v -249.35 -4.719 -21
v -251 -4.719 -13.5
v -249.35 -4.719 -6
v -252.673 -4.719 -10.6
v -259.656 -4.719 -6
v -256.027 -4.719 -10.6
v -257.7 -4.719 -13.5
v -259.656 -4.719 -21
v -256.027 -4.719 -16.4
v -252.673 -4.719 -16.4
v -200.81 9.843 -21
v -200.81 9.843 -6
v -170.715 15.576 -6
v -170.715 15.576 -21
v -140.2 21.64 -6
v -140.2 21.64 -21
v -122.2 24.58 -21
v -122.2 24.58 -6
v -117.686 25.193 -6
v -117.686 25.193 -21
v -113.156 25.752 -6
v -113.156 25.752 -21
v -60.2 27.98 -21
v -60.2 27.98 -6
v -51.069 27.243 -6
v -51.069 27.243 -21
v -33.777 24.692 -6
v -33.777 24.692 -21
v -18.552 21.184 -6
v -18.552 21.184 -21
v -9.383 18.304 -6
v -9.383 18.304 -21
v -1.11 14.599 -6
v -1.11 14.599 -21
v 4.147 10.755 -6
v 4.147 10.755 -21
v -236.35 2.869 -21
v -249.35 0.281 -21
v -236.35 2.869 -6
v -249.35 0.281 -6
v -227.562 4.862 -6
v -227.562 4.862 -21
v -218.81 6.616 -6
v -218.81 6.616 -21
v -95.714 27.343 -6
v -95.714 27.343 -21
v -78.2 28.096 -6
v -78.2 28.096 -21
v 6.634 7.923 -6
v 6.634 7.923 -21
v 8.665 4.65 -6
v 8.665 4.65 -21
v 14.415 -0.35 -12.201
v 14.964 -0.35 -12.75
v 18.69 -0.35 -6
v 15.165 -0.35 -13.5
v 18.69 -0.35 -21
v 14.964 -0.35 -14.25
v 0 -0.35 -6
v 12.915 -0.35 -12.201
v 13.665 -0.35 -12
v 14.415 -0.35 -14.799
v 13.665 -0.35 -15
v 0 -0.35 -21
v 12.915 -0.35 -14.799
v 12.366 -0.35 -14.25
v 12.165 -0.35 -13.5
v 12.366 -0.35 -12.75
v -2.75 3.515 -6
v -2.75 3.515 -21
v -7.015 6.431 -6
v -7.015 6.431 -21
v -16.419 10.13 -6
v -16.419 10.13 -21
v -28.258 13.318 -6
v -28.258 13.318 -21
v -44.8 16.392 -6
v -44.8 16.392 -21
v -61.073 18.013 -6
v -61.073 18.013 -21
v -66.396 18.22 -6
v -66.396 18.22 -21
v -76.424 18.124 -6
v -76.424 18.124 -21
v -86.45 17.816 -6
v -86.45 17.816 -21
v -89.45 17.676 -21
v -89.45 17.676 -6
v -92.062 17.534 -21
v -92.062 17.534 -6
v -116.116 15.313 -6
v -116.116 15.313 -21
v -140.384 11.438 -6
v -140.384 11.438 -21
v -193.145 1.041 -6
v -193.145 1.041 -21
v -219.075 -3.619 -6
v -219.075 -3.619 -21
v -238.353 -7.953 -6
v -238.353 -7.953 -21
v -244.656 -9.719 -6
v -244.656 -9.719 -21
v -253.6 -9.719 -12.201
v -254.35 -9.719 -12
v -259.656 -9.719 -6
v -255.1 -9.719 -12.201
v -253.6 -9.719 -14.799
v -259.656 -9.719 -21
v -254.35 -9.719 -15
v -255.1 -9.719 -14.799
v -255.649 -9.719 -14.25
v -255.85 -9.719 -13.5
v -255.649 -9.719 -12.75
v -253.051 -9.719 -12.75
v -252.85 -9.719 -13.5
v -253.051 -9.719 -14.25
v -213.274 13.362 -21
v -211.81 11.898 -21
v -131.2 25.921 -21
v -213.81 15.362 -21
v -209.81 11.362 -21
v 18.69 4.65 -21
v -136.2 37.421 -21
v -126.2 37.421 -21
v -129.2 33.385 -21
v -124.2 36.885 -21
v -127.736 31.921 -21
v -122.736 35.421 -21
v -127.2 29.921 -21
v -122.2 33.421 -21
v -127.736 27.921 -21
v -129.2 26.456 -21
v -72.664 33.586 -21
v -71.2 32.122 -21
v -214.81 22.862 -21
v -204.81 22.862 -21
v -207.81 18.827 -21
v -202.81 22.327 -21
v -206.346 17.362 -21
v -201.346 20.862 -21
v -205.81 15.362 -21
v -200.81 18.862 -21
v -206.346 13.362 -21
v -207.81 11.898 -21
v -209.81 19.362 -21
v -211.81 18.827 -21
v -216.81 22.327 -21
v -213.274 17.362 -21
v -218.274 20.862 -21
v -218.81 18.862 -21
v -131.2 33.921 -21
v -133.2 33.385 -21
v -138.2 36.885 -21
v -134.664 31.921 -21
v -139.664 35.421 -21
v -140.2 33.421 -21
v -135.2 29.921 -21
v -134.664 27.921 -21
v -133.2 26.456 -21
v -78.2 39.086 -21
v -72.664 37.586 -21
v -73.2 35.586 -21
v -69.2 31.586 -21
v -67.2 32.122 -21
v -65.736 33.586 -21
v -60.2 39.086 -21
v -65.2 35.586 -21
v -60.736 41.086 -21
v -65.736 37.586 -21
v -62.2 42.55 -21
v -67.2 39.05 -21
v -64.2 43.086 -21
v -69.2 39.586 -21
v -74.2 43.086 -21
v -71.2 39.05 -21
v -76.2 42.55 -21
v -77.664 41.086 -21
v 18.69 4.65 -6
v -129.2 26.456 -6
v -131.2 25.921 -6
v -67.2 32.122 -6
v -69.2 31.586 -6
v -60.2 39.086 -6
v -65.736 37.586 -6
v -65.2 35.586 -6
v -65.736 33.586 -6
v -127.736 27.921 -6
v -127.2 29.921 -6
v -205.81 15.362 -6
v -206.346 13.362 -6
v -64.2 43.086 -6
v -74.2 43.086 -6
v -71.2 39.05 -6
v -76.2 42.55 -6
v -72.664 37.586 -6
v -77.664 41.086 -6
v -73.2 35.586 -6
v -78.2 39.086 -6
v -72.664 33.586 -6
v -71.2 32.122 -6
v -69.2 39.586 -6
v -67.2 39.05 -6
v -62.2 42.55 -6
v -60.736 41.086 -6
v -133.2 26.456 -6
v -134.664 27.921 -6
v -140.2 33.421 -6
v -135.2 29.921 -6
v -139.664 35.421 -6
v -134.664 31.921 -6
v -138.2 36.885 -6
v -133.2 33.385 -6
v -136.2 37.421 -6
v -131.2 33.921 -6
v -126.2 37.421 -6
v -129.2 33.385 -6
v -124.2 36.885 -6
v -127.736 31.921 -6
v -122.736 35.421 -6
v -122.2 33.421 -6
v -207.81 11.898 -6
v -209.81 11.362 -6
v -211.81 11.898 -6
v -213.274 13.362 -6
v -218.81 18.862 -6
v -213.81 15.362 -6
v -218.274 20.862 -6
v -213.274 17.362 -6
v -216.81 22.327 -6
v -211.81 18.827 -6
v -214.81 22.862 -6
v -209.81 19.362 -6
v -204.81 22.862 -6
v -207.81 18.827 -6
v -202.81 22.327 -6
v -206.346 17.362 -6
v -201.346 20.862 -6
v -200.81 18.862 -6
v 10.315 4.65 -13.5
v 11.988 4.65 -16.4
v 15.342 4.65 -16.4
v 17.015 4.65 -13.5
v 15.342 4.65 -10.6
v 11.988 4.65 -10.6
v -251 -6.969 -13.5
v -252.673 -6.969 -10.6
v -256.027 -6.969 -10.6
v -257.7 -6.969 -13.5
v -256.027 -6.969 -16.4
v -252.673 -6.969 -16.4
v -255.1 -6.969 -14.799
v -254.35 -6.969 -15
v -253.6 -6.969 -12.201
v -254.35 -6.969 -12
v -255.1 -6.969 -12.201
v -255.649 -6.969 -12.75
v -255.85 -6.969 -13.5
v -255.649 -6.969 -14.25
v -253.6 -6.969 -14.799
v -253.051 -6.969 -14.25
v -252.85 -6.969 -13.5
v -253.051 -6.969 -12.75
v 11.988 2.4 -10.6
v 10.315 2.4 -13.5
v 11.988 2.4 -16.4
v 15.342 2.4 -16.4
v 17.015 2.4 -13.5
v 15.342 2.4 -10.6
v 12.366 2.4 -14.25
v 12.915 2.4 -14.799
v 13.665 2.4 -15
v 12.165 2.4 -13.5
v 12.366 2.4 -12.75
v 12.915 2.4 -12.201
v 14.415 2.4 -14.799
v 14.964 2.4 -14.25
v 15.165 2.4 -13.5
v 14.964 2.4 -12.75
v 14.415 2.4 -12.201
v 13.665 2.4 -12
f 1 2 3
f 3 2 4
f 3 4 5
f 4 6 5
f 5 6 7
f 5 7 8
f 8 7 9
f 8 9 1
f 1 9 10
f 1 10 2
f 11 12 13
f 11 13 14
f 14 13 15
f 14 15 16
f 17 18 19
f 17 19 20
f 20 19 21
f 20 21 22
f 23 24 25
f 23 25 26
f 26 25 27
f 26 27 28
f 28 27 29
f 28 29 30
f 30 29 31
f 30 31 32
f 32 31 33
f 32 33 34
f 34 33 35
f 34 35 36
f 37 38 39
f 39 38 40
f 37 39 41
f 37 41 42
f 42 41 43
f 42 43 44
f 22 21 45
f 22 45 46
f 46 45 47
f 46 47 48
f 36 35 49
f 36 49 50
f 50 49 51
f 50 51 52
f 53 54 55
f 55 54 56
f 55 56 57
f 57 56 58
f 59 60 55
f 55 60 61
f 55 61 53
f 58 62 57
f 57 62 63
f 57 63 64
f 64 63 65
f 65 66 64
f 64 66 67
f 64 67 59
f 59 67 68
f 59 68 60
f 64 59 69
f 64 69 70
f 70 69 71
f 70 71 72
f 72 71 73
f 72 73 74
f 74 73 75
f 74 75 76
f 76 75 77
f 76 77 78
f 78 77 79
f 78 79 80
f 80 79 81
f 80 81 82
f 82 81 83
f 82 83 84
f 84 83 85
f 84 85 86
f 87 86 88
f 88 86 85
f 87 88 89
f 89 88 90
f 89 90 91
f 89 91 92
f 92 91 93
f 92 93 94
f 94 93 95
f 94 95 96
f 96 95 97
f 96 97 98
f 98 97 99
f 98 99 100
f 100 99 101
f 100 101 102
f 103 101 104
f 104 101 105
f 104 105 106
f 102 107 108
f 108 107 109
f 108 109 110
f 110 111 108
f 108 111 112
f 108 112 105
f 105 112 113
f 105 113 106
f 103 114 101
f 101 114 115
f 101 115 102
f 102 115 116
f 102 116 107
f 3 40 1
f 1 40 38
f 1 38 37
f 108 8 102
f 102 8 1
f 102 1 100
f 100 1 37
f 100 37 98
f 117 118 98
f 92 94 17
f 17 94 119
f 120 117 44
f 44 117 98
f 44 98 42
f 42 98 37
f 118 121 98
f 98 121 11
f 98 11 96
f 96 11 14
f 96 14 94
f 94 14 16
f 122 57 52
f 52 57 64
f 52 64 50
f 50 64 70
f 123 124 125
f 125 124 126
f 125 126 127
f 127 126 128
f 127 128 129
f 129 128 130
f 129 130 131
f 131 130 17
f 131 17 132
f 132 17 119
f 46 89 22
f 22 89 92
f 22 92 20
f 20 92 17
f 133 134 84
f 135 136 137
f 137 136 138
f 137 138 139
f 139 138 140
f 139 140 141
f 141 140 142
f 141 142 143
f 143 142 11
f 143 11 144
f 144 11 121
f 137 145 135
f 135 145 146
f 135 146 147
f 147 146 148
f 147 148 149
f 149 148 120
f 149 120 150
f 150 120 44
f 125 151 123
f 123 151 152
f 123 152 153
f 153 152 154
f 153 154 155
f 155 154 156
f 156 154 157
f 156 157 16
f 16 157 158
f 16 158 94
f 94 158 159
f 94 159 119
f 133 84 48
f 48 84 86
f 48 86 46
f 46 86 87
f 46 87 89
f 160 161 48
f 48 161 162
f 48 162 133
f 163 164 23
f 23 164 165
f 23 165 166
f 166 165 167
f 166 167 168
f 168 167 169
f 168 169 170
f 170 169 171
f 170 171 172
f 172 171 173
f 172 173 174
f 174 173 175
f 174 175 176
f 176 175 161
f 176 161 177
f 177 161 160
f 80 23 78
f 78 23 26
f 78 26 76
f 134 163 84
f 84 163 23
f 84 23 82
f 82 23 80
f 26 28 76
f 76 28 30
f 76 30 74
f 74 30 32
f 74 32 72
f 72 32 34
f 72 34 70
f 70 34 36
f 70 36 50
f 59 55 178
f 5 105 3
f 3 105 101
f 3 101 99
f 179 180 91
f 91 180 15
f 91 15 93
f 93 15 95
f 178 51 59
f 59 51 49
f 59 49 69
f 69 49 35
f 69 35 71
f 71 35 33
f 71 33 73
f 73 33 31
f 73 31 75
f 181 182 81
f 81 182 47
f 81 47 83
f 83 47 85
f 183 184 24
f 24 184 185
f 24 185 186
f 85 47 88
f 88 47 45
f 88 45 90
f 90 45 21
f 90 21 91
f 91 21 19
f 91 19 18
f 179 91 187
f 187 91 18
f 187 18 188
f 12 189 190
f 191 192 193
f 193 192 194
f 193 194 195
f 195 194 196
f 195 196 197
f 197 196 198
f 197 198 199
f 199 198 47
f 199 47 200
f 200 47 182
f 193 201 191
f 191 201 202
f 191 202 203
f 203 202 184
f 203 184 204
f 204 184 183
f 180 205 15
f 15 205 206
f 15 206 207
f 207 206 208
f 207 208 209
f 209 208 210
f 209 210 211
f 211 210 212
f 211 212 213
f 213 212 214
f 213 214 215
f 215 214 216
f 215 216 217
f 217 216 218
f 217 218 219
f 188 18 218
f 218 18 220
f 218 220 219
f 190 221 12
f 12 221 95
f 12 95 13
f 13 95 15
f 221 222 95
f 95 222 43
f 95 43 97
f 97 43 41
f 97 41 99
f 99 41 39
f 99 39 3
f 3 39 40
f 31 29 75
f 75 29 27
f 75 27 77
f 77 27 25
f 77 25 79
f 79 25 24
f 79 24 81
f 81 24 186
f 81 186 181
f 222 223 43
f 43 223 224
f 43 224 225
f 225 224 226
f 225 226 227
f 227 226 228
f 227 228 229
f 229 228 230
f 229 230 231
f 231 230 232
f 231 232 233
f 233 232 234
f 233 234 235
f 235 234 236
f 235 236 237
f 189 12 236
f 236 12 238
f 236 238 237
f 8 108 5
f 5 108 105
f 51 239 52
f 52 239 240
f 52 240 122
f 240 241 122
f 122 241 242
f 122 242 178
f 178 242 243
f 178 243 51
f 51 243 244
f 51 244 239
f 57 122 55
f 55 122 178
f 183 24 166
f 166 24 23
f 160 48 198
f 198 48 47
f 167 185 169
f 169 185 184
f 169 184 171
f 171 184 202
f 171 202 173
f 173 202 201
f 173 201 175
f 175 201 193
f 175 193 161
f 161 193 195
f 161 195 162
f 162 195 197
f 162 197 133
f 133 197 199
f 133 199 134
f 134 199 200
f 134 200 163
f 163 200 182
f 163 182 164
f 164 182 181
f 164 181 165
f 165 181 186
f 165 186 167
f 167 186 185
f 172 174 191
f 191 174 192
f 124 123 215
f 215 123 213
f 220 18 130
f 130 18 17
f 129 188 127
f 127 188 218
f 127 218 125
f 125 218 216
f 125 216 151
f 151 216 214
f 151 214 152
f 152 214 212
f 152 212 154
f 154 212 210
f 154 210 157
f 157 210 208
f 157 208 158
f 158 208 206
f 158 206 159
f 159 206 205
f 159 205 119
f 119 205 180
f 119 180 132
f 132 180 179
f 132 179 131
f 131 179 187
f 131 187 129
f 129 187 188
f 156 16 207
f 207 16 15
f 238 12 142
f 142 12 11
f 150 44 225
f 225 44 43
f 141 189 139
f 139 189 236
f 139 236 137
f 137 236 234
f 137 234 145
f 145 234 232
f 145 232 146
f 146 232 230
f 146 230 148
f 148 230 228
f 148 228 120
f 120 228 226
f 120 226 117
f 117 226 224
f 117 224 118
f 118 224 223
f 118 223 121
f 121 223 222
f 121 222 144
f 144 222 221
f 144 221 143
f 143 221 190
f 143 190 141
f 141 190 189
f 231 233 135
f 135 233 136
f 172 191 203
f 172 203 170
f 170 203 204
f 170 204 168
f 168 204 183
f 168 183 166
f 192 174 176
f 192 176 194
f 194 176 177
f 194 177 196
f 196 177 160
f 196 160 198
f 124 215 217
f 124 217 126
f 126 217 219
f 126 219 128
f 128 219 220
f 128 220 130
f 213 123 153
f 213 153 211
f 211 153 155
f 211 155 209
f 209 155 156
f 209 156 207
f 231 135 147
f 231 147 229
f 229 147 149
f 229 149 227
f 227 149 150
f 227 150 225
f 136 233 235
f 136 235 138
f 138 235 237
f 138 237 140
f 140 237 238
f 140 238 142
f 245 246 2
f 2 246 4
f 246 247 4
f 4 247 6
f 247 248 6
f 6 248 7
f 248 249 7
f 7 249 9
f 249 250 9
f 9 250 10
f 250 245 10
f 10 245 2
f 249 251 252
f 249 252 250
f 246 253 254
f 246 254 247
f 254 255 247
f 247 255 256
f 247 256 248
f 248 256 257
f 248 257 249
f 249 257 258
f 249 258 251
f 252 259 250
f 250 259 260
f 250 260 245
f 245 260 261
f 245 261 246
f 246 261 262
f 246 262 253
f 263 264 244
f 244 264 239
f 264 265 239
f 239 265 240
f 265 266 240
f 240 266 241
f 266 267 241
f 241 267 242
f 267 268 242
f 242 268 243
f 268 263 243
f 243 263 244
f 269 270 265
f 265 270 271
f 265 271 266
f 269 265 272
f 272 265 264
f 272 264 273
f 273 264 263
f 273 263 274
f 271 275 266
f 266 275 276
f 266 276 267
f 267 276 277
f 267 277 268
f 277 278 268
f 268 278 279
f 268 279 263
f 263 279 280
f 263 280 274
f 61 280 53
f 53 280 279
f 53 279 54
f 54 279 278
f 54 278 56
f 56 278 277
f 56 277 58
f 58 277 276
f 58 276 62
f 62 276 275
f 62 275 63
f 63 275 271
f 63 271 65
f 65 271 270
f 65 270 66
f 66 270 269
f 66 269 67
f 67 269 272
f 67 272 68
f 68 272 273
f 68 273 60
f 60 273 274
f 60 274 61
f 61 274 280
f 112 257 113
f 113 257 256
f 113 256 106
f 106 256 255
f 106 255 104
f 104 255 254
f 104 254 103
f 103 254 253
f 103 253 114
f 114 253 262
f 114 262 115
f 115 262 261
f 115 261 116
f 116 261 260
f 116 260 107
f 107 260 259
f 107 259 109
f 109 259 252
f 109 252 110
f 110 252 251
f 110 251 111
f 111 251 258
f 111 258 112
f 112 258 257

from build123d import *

# Parameters (mm, degrees)
BOSS_EXTRUDE14_DEPTH            = 15
SKETCH9_W                       = 10.305582395
SKETCH9_H                       = 5
BOSS_EXTRUDE15_DEPTH            = 15
BOSS_EXTRUDE16_START            = -15
BOSS_EXTRUDE16_OUTLINE_R        = 4
BOSS_EXTRUDE16_DEPTH            = 15
FILLET1_R                       = 4
CUT_EXTRUDE2_DEPTH              = 2.25
CUT_EXTRUDE3_DEPTH              = 2.25
F_3_0MM_DOWEL_HOLE1_D           = 3
F_3_0MM_DOWEL_HOLE1_CSINK_D     = 3.05
F_3_0MM_DOWEL_HOLE1_CSINK_ANGLE = 90
SKETCH16_R                      = 1.5
CUT_EXTRUDE4_DEPTH              = 265.853431953


# Read off the part's stored shape, not the designer's step: Boss-Extrude14, Boss-Extrude16
with BuildPart() as part:
    # Boss-Extrude14 outline → Boss-Extrude14 (new body)
    with BuildSketch(Plane(origin=(0, 0, -6), x_dir=(-1, 0, 0), z_dir=(0, 0, -1))):
        with BuildLine():
            Line((249.35, -9.718799499), (249.35, 0.281200501))
            Line((249.35, 0.281200501), (236.35, 2.868680647))
            add(Edge.make_bspline(
                [(113.156309789, 25.751987472), (114.460208978, 25.59959164), (120.100287856, 24.908577179), (128.609098159, 23.664110071), (140.134091586, 21.688830409), (153.008895552, 19.221496185), (168.538046321, 16.015172699), (182.477939999, 13.172125281), (193.559005245, 11.111240975), (201.981640704, 9.637661129), (210.486612866, 8.154956205), (219.063637957, 6.591746422), (227.68151116, 4.874943897), (233.474971, 3.568357951), (236.35, 2.868680647)],
                knots=[0.109458463, 0.109458463, 0.109458463, 0.109458463, 0.130371933, 0.200030506, 0.247022058, 0.318338141, 0.412321245, 0.506304349, 0.553295901, 0.600287453, 0.647279005, 0.694270557, 0.741262109, 0.788253661, 0.788253661, 0.788253661, 0.788253661], degree=3))
            add(Edge.make_bspline(
                [(76.45, 28.125418087), (94.882372903, 27.862574162), (113.156309789, 25.751987472)],
                knots=[0, 0, 0, 0.632722323, 0.632722323, 0.632722323], degree=2))
            add(Edge.make_bspline(
                [(66.284340587, 28.219952736), (67.129544996, 28.219602739), (68.818588071, 28.215923169), (71.36030606, 28.198672488), (73.903160315, 28.169538769), (75.601337427, 28.141603711), (76.45, 28.125418087)],
                knots=[0.875312122, 0.875312122, 0.875312122, 0.875312122, 0.888961276, 0.902610431, 0.916259586, 0.92990874, 0.92990874, 0.92990874, 0.92990874], degree=3))
            add(Edge.make_bspline(
                [(-4.147448422, 10.754973325), (-3.746592061, 11.135583203), (-2.910664688, 11.873123525), (-1.8664669, 12.676265805), (-1.020623492, 13.271741618), (-0.136993775, 13.859475937), (1.465019188, 14.831768722), (3.815921844, 16.045559455), (7.753628889, 17.758192835), (13.256195767, 19.698691993), (21.152959065, 21.952811545), (30.479838242, 24.122904012), (39.4239247, 25.749420494), (47.205771024, 26.831006606), (53.324700432, 27.499051298), (58.631201034, 27.906826379), (62.977570557, 28.125868706), (65.18464413, 28.194929818), (66.284340587, 28.219952736)],
                knots=[0.135157363, 0.135157363, 0.135157363, 0.135157363, 0.162214964, 0.189272566, 0.201061372, 0.214590172, 0.243387768, 0.297502971, 0.351618174, 0.459848579, 0.568078984, 0.676309389, 0.784539795, 0.838654997, 0.8927702, 0.946885402, 0.973943004, 1.001000605, 1.001000605, 1.001000605, 1.001000605], degree=3))
            add(Edge.make_bspline(
                [(-8.702959439, 4.575291566), (-6.890883257, 8.114910032), (-4.147448422, 10.754973325)],
                knots=[0, 0, 0, 0.636944249, 0.636944249, 0.636944249], degree=2))
            add(Edge.make_bspline(
                [(-8.702959439, 4.575291566), (-8.771267052, 4.454592439), (-8.899970783, 4.219174636), (-9.174274638, 3.674724808), (-9.523622742, 2.874059155), (-9.910621046, 1.66916954), (-10.123727188, 0.514933148), (-10.179306724, -0.189247064), (-10.188216911, -0.35)],
                knots=[0, 0, 0, 0, 0.000508489, 0.001016978, 0.002033955, 0.003050933, 0.00394155, 0.004195794, 0.004195794, 0.004195794, 0.004195794], degree=3))
            Line((-10.188216911, -0.35), (0, -0.35))
            add(Edge.make_bspline(
                [(0, -0.35), (3.178862469, 6.495343287), (8.987756305, 8.032168144), (22.140633739, 13.071207305), (43.250433247, 17.69324185), (66.39602757, 18.219905629)],
                knots=[0, 0, 0, 0, 0, 0, 1, 1, 1, 1, 1, 1], degree=5))
            add(Edge.make_bspline(
                [(66.39602757, 18.219905629), (73.079858249, 18.217137873), (79.768873399, 18.101745103), (86.45, 17.815976098)],
                knots=[0.875945967, 0.875945967, 0.875945967, 0.875945967, 0.985673704, 0.985673704, 0.985673704, 0.985673704], degree=3))
            Line((86.45, 17.815976098), (89.45, 17.675984992))
            ThreePointArc((89.45, 17.675984992), (90.756210616, 17.607556707), (92.062168571, 17.534464817))
            add(Edge.make_bspline(
                [(92.062168571, 17.534464817), (95.665977641, 17.334138157), (108.464938821, 16.428798519), (140.620964858, 12.117510077), (187.478425037, 1.167330167), (226.131267819, -4.204534739), (244.655582392, -9.718799508)],
                knots=[0, 0, 0, 0, 0.05922822, 0.210539222, 0.531730365, 0.848733007, 0.848733007, 0.848733007, 0.848733007], degree=3))
            Line((244.655582392, -9.718799508), (249.35, -9.718799499))
        make_face()
    extrude(amount=BOSS_EXTRUDE14_DEPTH)

    # Sketch9 → Boss-Extrude15 (add)
    with BuildSketch(Plane.XY.offset(-6)):
        with BuildLine():
            add(Edge.make_bspline(
                [(8.702959439, 4.575291566), (8.771267052, 4.454592439), (8.899970783, 4.219174636), (9.174274638, 3.674724808), (9.523622742, 2.874059155), (9.910621046, 1.66916954), (10.123727188, 0.514933148), (10.179306724, -0.189247064), (10.188216911, -0.35)],
                knots=[0, 0, 0, 0, 0.000508489, 0.001016978, 0.002033955, 0.003050933, 0.00394155, 0.004195794, 0.004195794, 0.004195794, 0.004195794], degree=3))
            Line((10.188216911, -0.35), (18.69, -0.35))
            Line((18.69, -0.35), (18.69, 4.65))
            Line((18.69, 4.65), (8.664557691, 4.65))
            add(Edge.make_bspline(
                [(8.702959439, 4.575291566), (8.683810567, 4.612696009), (8.664557691, 4.65)],
                knots=[0, 0, 0, 0.006730823, 0.006730823, 0.006730823], degree=2))
        make_face()
        with Locations((-254.502791198, -7.218799499)):
            Rectangle(SKETCH9_W, SKETCH9_H)
    extrude(amount=-BOSS_EXTRUDE15_DEPTH)

    # Boss-Extrude16 outline → Boss-Extrude16 (add)
    # profile 1 of 3: a face of its own
    with BuildSketch(Plane.XY.offset(-6).offset(BOSS_EXTRUDE16_START)):
        with BuildLine():
            add(Edge.make_bspline(
                [(-200.81, 9.843246703), (-201.204842604, 9.774216263), (-204.419312994, 9.212692224), (-210.400725126, 8.169929349), (-216.031409877, 7.144376286), (-218.81, 6.615762453)],
                knots=[0.593701678, 0.593701678, 0.593701678, 0.593701678, 0.600287453, 0.647279005, 0.69284692, 0.69284692, 0.69284692, 0.69284692], degree=3))
            Line((-200.81, 9.843246703), (-200.81, 22.86245595))
            Line((-200.81, 22.86245595), (-218.81, 22.86245595))
            Line((-218.81, 22.86245595), (-218.81, 6.615762453))
        make_face()
        with Locations((-209.81, 15.36245595)):
            Circle(BOSS_EXTRUDE16_OUTLINE_R, mode=Mode.SUBTRACT)
    # profile 2 of 3: a face of its own
    with BuildSketch(Plane.XY.offset(-6).offset(BOSS_EXTRUDE16_START)):
        with BuildLine():
            add(Edge.make_bspline(
                [(-122.199999995, 24.58006078), (-124.804407306, 24.210507661), (-130.301243555, 23.374091651), (-136.28735582, 22.348126136), (-139.677142176, 21.735093133), (-140.2, 21.639813309)],
                knots=[0.15796988, 0.15796988, 0.15796988, 0.15796988, 0.200030506, 0.247022058, 0.255600029, 0.255600029, 0.255600029, 0.255600029], degree=3))
            Line((-122.199999995, 24.58006078), (-122.2, 37.420573855))
            Line((-122.2, 37.420573855), (-140.2, 37.420573855))
            Line((-140.2, 37.420573855), (-140.2, 21.639813309))
        make_face()
        with Locations((-131.2, 29.920573855)):
            Circle(BOSS_EXTRUDE16_OUTLINE_R, mode=Mode.SUBTRACT)
    # profile 3 of 3: a face of its own
    with BuildSketch(Plane.XY.offset(-6).offset(BOSS_EXTRUDE16_START)):
        with BuildLine():
            Line((-60.199999997, 27.980034372), (-60.2, 43.08620947))
            Line((-60.2, 43.08620947), (-78.2, 43.08620947))
            Line((-78.2, 43.08620947), (-78.199999995, 28.096292606))
            add(Edge.make_bspline(
                [(-76.45, 28.125418087), (-77.325178587, 28.112938121), (-78.199999995, 28.096292606)],
                knots=[0, 0, 0, 0.030041983, 0.030041983, 0.030041983], degree=2))
            add(Edge.make_bspline(
                [(-66.284340587, 28.219952736), (-67.129544996, 28.219602739), (-68.818588071, 28.215923169), (-71.36030606, 28.198672488), (-73.903160315, 28.169538769), (-75.601337427, 28.141603711), (-76.45, 28.125418087)],
                knots=[0.875312122, 0.875312122, 0.875312122, 0.875312122, 0.888961276, 0.902610431, 0.916259586, 0.92990874, 0.92990874, 0.92990874, 0.92990874], degree=3))
            add(Edge.make_bspline(
                [(-60.199999997, 27.980034372), (-61.122523668, 28.03215495), (-63.139027933, 28.130920838), (-65.18464413, 28.194929818), (-66.284340587, 28.219952736)],
                knots=[0.950844173, 0.950844173, 0.950844173, 0.950844173, 0.973943004, 1.001000605, 1.001000605, 1.001000605, 1.001000605], degree=3))
        make_face()
        with Locations((-69.2, 35.58620947)):
            Circle(BOSS_EXTRUDE16_OUTLINE_R, mode=Mode.SUBTRACT)
    extrude(amount=BOSS_EXTRUDE16_DEPTH)

    # Fillet1
    fillet1_edges = [part.edges().sort_by_distance(p)[0] for p in [
        (-200.81, 22.86245595, -13.5),
        (-218.81, 22.86245595, -13.5),
        (-140.2, 37.420573855, -13.5),
        (-122.2, 37.420573855, -13.5),
        (-60.2, 43.08620947, -13.5),
        (-78.2, 43.08620947, -13.5),
    ]]
    fillet(fillet1_edges, radius=FILLET1_R)

    # Sketch12 → Cut-Extrude2 (cut)
    with BuildSketch(Plane(origin=(0, -4.718799499, 0), x_dir=(1, 0, 0), z_dir=(0, 1, 0))):
        with BuildLine():
            Line((-252.85, 13.5), (-251, 13.5))
            Line((-251, 13.5), (-252.672949017, 16.4))
            Line((-252.672949017, 16.4), (-256.027050983, 16.4))
            Line((-256.027050983, 16.4), (-257.7, 13.5))
            Line((-257.7, 13.5), (-255.85, 13.5))
            ThreePointArc((-255.85, 13.5), (-254.35, 15), (-252.85, 13.5))
        make_face()
        with BuildLine():
            Line((-252.672949017, 10.6), (-251, 13.5))
            Line((-251, 13.5), (-252.85, 13.5))
            ThreePointArc((-252.85, 13.5), (-254.35, 12), (-255.85, 13.5))
            Line((-255.85, 13.5), (-257.7, 13.5))
            Line((-257.7, 13.5), (-256.027050983, 10.6))
            Line((-256.027050983, 10.6), (-252.672949017, 10.6))
        make_face()
        with BuildLine():
            ThreePointArc((-255.85, 13.5), (-254.35, 12), (-252.85, 13.5))
            Line((-252.85, 13.5), (-254.35, 13.5))
            Line((-254.35, 13.5), (-255.85, 13.5))
        make_face()
    extrude(amount=-CUT_EXTRUDE2_DEPTH, mode=Mode.SUBTRACT)

    # Sketch14 → Cut-Extrude3 (cut)
    with BuildSketch(Plane(origin=(0, 4.65, 0), x_dir=(1, 0, 0), z_dir=(0, 1, 0))):
        with BuildLine():
            ThreePointArc((13.664557695, 15), (14.725217866, 14.560660172), (15.164557695, 13.5))
            Line((15.164557695, 13.5), (17.014557695, 13.5))
            Line((17.014557695, 13.5), (15.341608678, 16.4))
            Line((15.341608678, 16.4), (13.664557695, 16.4))
            Line((13.664557695, 16.4), (13.664557695, 15))
        make_face()
        with BuildLine():
            Line((10.314557695, 13.5), (12.164557695, 13.5))
            ThreePointArc((12.164557695, 13.5), (12.603897523, 14.560660172), (13.664557695, 15))
            Line((13.664557695, 15), (13.664557695, 16.4))
            Line((13.664557695, 16.4), (11.987506712, 16.4))
            Line((11.987506712, 16.4), (10.314557695, 13.5))
        make_face()
        with BuildLine():
            Line((11.987506712, 10.6), (13.664557695, 10.6))
            Line((13.664557695, 10.6), (13.664557695, 12))
            ThreePointArc((13.664557695, 12), (12.603897523, 12.439339828), (12.164557695, 13.5))
            Line((12.164557695, 13.5), (10.314557695, 13.5))
            Line((10.314557695, 13.5), (11.987506712, 10.6))
        make_face()
        with BuildLine():
            Line((13.664557695, 12), (13.664557695, 10.6))
            Line((13.664557695, 10.6), (15.341608678, 10.6))
            Line((15.341608678, 10.6), (17.014557695, 13.5))
            Line((17.014557695, 13.5), (15.164557695, 13.5))
            ThreePointArc((15.164557695, 13.5), (14.725217866, 12.439339828), (13.664557695, 12))
        make_face()
    extrude(amount=-CUT_EXTRUDE3_DEPTH, mode=Mode.SUBTRACT)

    # Ø3.0mm Dowel Hole1 (through all)
    with Locations(Plane(origin=(0, 4.65, 0), x_dir=(1, 0, 0), z_dir=(0, 1, 0))):
        with Locations((13.664557695, 13.5)):
            CounterSinkHole(F_3_0MM_DOWEL_HOLE1_D / 2, F_3_0MM_DOWEL_HOLE1_CSINK_D / 2, counter_sink_angle=F_3_0MM_DOWEL_HOLE1_CSINK_ANGLE)

    # Sketch16 → Cut-Extrude4 (cut, through all)
    with BuildSketch(Plane(origin=(0, -4.718799499, 0), x_dir=(1, 0, 0), z_dir=(0, 1, 0))):
        with Locations(Location((-254.35, 13.5, 0), (0, 0, 180))):
            Circle(SKETCH16_R)
    extrude(amount=-CUT_EXTRUDE4_DEPTH, mode=Mode.SUBTRACT)


solid = part.part
